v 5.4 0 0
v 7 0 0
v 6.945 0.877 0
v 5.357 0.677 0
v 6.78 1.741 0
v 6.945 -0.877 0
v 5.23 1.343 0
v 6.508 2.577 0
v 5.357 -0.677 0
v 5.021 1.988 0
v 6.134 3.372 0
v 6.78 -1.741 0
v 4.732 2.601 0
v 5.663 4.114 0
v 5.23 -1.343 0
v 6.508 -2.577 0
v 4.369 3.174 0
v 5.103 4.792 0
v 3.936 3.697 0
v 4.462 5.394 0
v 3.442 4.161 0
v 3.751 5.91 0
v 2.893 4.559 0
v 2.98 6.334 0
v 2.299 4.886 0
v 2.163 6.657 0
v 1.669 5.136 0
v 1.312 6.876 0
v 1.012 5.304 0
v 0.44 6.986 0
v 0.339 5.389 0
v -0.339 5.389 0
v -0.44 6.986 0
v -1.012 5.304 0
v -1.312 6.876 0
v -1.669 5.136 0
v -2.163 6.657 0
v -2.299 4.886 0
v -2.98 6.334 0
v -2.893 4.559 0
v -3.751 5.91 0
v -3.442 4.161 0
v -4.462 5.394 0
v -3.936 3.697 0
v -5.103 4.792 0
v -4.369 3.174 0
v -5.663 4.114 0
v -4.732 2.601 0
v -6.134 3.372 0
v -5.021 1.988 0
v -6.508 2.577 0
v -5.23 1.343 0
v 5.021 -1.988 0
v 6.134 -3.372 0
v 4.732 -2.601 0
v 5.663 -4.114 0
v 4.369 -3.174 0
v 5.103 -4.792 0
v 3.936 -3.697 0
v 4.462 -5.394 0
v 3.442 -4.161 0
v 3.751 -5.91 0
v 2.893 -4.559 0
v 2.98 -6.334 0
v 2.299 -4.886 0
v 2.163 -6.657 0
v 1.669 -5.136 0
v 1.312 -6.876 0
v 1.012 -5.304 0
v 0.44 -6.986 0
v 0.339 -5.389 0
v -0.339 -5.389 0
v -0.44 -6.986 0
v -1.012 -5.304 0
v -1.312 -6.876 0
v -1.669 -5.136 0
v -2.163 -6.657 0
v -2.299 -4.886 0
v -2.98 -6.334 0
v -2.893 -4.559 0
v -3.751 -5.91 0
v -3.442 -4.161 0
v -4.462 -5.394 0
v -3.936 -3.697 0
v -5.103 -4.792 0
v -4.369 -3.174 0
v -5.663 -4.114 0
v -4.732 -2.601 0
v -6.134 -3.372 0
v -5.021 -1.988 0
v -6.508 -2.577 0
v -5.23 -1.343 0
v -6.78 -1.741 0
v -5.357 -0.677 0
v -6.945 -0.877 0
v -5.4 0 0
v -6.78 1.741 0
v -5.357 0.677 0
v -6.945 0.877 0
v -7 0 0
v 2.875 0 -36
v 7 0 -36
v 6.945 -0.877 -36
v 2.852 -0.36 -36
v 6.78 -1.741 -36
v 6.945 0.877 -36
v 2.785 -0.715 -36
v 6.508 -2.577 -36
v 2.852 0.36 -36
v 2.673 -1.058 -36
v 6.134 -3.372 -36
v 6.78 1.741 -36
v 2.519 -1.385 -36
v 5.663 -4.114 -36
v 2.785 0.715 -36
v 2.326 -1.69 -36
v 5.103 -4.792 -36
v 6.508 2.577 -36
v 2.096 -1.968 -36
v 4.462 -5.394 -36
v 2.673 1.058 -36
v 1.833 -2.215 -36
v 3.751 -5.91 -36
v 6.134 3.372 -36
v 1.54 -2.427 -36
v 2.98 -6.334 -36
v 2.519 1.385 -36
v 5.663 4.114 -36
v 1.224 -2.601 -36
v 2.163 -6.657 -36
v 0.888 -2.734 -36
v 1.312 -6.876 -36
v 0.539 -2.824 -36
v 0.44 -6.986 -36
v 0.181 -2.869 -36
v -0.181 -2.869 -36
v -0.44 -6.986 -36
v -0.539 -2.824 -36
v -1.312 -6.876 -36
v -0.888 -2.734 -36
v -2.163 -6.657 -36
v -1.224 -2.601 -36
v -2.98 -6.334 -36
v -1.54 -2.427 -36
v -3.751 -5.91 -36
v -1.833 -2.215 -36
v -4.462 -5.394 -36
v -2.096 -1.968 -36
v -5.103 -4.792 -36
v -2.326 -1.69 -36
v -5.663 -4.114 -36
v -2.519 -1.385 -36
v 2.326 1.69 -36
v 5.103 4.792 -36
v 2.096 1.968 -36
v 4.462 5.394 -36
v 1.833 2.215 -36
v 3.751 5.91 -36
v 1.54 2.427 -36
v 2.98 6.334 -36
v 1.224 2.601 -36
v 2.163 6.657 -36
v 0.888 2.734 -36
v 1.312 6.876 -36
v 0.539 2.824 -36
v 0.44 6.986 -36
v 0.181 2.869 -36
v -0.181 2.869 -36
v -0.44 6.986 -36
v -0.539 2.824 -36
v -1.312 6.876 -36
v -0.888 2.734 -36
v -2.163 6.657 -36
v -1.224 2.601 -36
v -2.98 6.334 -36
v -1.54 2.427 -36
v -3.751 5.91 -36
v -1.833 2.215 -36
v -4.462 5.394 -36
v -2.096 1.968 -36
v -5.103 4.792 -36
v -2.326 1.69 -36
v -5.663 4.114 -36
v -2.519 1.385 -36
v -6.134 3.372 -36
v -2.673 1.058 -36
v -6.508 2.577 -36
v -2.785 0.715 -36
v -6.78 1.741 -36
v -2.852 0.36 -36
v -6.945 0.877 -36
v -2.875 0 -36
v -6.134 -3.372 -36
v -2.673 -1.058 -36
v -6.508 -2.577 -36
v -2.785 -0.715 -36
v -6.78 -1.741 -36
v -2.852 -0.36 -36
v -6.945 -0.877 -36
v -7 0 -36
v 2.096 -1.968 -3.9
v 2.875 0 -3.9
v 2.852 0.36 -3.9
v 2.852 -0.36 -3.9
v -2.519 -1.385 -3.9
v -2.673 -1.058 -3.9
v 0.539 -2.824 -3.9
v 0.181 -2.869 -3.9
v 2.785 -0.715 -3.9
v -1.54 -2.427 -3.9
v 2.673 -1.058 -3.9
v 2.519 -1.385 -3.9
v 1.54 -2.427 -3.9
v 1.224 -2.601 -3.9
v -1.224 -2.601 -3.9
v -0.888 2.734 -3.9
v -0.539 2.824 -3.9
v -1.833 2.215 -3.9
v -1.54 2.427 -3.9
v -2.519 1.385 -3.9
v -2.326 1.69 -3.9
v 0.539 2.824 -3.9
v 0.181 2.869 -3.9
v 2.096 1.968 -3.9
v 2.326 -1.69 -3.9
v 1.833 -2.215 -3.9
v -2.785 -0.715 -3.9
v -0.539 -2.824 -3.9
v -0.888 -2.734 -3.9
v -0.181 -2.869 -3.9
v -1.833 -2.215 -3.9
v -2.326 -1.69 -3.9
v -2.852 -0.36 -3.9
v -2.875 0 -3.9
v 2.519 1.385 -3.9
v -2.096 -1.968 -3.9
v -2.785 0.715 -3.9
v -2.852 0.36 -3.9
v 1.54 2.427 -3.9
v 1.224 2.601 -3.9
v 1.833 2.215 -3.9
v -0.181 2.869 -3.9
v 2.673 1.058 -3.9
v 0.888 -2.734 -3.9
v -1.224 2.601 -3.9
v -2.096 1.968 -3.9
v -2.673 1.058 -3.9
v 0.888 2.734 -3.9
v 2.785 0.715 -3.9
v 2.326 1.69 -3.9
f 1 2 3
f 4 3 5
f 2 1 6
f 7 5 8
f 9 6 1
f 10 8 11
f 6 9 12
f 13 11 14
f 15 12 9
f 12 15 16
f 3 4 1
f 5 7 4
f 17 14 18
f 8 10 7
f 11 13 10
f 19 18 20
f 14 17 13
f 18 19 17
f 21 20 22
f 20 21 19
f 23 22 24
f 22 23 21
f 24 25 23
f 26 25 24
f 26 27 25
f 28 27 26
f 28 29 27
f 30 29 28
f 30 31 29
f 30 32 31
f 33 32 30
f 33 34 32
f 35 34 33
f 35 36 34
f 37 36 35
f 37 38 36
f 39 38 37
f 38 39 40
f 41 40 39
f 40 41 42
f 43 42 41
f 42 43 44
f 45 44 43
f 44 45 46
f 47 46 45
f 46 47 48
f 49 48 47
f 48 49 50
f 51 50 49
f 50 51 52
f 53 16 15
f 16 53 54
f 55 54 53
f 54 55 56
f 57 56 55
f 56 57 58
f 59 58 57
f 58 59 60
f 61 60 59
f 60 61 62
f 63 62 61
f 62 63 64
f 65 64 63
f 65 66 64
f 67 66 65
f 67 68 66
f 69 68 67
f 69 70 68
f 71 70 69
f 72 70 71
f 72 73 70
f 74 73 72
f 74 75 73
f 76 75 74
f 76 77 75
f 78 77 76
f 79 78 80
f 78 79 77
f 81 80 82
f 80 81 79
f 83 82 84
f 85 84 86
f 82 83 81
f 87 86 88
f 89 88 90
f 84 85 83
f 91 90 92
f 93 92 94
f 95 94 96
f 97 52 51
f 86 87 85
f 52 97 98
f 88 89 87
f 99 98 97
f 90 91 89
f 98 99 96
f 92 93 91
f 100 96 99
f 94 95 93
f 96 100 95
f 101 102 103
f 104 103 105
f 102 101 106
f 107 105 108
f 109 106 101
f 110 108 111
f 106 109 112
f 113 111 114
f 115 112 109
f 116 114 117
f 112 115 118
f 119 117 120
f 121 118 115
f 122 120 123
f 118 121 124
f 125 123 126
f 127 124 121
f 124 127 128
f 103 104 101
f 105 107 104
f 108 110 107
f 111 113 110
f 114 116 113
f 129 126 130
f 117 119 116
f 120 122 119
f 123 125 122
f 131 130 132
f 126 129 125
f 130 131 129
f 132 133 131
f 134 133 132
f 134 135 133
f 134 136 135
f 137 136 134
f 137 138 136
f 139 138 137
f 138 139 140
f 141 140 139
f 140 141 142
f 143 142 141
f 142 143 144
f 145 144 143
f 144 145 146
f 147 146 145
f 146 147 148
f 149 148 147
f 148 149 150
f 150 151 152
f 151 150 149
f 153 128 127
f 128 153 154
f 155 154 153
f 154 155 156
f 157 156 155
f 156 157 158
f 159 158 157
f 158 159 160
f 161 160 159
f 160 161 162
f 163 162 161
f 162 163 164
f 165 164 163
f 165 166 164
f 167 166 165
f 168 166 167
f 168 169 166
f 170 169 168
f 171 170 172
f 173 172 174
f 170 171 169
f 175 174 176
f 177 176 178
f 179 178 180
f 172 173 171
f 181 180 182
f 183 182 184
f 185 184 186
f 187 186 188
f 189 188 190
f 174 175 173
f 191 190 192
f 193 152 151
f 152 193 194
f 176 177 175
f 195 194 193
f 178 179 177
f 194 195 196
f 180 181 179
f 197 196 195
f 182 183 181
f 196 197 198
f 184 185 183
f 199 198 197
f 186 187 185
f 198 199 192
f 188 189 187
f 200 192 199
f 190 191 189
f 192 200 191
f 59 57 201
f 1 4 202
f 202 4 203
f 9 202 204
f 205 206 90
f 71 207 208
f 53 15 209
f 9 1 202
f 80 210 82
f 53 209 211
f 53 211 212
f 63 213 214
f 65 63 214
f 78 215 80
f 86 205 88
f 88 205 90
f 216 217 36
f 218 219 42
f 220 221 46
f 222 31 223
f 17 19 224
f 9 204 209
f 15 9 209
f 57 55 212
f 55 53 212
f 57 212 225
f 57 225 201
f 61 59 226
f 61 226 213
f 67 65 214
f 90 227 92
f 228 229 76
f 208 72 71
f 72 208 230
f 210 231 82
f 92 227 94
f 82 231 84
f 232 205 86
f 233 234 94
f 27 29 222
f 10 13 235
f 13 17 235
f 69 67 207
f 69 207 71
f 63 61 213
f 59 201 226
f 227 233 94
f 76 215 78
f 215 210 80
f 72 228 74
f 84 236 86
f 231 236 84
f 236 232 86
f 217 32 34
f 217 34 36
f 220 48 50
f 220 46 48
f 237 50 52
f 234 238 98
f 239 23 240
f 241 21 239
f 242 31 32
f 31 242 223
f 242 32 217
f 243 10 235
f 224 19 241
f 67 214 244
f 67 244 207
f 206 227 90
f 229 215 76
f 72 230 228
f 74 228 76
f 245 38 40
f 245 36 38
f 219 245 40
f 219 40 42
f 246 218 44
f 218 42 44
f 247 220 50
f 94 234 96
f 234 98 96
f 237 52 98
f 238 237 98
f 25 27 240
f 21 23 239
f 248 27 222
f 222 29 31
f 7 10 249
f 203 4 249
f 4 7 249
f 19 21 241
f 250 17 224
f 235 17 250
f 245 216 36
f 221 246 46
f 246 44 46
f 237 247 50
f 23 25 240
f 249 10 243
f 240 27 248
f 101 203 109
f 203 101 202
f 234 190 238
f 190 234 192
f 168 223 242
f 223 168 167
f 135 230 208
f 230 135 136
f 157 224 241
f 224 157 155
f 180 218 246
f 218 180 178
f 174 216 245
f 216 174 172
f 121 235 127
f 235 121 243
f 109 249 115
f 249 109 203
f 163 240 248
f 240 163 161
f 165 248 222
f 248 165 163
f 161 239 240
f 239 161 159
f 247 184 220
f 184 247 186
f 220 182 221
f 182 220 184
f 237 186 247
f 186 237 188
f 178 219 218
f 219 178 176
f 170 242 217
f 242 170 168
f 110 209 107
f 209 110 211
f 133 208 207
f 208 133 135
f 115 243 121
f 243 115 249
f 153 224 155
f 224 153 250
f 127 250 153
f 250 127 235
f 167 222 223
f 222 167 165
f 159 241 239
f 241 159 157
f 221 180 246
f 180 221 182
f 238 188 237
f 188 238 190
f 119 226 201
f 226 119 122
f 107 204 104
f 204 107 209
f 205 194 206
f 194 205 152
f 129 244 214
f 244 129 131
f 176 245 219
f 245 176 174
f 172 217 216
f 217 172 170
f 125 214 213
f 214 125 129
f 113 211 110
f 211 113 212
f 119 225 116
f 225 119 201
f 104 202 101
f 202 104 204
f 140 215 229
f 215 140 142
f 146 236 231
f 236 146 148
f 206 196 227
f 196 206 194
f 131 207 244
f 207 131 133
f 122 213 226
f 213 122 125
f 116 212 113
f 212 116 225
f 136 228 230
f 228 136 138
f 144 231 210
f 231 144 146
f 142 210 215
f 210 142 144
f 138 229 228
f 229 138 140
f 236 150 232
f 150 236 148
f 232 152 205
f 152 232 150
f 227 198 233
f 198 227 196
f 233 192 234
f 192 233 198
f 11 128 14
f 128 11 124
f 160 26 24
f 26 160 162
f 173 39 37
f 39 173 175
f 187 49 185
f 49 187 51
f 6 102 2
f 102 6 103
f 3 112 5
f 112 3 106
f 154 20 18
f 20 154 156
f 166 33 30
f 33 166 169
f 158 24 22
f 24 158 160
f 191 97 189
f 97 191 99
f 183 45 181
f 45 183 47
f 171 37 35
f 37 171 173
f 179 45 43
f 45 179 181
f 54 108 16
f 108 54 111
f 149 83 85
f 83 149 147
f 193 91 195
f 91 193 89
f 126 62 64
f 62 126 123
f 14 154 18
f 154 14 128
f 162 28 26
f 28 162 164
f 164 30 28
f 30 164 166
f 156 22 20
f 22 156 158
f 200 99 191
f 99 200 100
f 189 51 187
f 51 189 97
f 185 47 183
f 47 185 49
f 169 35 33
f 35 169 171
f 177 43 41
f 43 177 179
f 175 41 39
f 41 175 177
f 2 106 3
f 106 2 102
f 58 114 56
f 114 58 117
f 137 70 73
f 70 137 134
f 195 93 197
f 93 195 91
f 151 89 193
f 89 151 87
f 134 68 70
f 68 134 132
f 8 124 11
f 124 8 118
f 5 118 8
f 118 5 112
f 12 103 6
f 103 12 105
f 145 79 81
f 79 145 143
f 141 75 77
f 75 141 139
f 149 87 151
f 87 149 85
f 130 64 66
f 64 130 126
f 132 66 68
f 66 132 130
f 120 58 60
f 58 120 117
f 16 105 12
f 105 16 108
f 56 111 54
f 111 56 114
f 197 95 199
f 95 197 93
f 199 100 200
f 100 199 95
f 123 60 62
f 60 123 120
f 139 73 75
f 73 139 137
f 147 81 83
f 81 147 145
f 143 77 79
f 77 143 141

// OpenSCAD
$fn = 50;


difference() {
	union() {
		translate(v = [0, 0, -36.0000000000]) {
			cylinder(h = 36, r = 7.0000000000);
		}
		cylinder(h = 0, r = 17.0000000000);
	}
	union() {
		translate(v = [0, 0, 0]) {
			rotate(a = [0, 0, 0]) {
				difference() {
					union() {
						#translate(v = [0, 0, -36.0000000000]) {
							cylinder(h = 36, r = 2.6000000000);
						}
						#translate(v = [0, 0, -3.9000000000]) {
							cylinder(h = 3.9000000000, r1 = 2.8750000000, r2 = 5.4000000000);
						}
						#translate(v = [0, 0, -36.0000000000]) {
							cylinder(h = 36, r = 2.8750000000);
						}
						#translate(v = [0, 0, -36.0000000000]) {
							cylinder(h = 36, r = 2.6000000000);
						}
					}
					union();
				}
			}
		}
	}
}
